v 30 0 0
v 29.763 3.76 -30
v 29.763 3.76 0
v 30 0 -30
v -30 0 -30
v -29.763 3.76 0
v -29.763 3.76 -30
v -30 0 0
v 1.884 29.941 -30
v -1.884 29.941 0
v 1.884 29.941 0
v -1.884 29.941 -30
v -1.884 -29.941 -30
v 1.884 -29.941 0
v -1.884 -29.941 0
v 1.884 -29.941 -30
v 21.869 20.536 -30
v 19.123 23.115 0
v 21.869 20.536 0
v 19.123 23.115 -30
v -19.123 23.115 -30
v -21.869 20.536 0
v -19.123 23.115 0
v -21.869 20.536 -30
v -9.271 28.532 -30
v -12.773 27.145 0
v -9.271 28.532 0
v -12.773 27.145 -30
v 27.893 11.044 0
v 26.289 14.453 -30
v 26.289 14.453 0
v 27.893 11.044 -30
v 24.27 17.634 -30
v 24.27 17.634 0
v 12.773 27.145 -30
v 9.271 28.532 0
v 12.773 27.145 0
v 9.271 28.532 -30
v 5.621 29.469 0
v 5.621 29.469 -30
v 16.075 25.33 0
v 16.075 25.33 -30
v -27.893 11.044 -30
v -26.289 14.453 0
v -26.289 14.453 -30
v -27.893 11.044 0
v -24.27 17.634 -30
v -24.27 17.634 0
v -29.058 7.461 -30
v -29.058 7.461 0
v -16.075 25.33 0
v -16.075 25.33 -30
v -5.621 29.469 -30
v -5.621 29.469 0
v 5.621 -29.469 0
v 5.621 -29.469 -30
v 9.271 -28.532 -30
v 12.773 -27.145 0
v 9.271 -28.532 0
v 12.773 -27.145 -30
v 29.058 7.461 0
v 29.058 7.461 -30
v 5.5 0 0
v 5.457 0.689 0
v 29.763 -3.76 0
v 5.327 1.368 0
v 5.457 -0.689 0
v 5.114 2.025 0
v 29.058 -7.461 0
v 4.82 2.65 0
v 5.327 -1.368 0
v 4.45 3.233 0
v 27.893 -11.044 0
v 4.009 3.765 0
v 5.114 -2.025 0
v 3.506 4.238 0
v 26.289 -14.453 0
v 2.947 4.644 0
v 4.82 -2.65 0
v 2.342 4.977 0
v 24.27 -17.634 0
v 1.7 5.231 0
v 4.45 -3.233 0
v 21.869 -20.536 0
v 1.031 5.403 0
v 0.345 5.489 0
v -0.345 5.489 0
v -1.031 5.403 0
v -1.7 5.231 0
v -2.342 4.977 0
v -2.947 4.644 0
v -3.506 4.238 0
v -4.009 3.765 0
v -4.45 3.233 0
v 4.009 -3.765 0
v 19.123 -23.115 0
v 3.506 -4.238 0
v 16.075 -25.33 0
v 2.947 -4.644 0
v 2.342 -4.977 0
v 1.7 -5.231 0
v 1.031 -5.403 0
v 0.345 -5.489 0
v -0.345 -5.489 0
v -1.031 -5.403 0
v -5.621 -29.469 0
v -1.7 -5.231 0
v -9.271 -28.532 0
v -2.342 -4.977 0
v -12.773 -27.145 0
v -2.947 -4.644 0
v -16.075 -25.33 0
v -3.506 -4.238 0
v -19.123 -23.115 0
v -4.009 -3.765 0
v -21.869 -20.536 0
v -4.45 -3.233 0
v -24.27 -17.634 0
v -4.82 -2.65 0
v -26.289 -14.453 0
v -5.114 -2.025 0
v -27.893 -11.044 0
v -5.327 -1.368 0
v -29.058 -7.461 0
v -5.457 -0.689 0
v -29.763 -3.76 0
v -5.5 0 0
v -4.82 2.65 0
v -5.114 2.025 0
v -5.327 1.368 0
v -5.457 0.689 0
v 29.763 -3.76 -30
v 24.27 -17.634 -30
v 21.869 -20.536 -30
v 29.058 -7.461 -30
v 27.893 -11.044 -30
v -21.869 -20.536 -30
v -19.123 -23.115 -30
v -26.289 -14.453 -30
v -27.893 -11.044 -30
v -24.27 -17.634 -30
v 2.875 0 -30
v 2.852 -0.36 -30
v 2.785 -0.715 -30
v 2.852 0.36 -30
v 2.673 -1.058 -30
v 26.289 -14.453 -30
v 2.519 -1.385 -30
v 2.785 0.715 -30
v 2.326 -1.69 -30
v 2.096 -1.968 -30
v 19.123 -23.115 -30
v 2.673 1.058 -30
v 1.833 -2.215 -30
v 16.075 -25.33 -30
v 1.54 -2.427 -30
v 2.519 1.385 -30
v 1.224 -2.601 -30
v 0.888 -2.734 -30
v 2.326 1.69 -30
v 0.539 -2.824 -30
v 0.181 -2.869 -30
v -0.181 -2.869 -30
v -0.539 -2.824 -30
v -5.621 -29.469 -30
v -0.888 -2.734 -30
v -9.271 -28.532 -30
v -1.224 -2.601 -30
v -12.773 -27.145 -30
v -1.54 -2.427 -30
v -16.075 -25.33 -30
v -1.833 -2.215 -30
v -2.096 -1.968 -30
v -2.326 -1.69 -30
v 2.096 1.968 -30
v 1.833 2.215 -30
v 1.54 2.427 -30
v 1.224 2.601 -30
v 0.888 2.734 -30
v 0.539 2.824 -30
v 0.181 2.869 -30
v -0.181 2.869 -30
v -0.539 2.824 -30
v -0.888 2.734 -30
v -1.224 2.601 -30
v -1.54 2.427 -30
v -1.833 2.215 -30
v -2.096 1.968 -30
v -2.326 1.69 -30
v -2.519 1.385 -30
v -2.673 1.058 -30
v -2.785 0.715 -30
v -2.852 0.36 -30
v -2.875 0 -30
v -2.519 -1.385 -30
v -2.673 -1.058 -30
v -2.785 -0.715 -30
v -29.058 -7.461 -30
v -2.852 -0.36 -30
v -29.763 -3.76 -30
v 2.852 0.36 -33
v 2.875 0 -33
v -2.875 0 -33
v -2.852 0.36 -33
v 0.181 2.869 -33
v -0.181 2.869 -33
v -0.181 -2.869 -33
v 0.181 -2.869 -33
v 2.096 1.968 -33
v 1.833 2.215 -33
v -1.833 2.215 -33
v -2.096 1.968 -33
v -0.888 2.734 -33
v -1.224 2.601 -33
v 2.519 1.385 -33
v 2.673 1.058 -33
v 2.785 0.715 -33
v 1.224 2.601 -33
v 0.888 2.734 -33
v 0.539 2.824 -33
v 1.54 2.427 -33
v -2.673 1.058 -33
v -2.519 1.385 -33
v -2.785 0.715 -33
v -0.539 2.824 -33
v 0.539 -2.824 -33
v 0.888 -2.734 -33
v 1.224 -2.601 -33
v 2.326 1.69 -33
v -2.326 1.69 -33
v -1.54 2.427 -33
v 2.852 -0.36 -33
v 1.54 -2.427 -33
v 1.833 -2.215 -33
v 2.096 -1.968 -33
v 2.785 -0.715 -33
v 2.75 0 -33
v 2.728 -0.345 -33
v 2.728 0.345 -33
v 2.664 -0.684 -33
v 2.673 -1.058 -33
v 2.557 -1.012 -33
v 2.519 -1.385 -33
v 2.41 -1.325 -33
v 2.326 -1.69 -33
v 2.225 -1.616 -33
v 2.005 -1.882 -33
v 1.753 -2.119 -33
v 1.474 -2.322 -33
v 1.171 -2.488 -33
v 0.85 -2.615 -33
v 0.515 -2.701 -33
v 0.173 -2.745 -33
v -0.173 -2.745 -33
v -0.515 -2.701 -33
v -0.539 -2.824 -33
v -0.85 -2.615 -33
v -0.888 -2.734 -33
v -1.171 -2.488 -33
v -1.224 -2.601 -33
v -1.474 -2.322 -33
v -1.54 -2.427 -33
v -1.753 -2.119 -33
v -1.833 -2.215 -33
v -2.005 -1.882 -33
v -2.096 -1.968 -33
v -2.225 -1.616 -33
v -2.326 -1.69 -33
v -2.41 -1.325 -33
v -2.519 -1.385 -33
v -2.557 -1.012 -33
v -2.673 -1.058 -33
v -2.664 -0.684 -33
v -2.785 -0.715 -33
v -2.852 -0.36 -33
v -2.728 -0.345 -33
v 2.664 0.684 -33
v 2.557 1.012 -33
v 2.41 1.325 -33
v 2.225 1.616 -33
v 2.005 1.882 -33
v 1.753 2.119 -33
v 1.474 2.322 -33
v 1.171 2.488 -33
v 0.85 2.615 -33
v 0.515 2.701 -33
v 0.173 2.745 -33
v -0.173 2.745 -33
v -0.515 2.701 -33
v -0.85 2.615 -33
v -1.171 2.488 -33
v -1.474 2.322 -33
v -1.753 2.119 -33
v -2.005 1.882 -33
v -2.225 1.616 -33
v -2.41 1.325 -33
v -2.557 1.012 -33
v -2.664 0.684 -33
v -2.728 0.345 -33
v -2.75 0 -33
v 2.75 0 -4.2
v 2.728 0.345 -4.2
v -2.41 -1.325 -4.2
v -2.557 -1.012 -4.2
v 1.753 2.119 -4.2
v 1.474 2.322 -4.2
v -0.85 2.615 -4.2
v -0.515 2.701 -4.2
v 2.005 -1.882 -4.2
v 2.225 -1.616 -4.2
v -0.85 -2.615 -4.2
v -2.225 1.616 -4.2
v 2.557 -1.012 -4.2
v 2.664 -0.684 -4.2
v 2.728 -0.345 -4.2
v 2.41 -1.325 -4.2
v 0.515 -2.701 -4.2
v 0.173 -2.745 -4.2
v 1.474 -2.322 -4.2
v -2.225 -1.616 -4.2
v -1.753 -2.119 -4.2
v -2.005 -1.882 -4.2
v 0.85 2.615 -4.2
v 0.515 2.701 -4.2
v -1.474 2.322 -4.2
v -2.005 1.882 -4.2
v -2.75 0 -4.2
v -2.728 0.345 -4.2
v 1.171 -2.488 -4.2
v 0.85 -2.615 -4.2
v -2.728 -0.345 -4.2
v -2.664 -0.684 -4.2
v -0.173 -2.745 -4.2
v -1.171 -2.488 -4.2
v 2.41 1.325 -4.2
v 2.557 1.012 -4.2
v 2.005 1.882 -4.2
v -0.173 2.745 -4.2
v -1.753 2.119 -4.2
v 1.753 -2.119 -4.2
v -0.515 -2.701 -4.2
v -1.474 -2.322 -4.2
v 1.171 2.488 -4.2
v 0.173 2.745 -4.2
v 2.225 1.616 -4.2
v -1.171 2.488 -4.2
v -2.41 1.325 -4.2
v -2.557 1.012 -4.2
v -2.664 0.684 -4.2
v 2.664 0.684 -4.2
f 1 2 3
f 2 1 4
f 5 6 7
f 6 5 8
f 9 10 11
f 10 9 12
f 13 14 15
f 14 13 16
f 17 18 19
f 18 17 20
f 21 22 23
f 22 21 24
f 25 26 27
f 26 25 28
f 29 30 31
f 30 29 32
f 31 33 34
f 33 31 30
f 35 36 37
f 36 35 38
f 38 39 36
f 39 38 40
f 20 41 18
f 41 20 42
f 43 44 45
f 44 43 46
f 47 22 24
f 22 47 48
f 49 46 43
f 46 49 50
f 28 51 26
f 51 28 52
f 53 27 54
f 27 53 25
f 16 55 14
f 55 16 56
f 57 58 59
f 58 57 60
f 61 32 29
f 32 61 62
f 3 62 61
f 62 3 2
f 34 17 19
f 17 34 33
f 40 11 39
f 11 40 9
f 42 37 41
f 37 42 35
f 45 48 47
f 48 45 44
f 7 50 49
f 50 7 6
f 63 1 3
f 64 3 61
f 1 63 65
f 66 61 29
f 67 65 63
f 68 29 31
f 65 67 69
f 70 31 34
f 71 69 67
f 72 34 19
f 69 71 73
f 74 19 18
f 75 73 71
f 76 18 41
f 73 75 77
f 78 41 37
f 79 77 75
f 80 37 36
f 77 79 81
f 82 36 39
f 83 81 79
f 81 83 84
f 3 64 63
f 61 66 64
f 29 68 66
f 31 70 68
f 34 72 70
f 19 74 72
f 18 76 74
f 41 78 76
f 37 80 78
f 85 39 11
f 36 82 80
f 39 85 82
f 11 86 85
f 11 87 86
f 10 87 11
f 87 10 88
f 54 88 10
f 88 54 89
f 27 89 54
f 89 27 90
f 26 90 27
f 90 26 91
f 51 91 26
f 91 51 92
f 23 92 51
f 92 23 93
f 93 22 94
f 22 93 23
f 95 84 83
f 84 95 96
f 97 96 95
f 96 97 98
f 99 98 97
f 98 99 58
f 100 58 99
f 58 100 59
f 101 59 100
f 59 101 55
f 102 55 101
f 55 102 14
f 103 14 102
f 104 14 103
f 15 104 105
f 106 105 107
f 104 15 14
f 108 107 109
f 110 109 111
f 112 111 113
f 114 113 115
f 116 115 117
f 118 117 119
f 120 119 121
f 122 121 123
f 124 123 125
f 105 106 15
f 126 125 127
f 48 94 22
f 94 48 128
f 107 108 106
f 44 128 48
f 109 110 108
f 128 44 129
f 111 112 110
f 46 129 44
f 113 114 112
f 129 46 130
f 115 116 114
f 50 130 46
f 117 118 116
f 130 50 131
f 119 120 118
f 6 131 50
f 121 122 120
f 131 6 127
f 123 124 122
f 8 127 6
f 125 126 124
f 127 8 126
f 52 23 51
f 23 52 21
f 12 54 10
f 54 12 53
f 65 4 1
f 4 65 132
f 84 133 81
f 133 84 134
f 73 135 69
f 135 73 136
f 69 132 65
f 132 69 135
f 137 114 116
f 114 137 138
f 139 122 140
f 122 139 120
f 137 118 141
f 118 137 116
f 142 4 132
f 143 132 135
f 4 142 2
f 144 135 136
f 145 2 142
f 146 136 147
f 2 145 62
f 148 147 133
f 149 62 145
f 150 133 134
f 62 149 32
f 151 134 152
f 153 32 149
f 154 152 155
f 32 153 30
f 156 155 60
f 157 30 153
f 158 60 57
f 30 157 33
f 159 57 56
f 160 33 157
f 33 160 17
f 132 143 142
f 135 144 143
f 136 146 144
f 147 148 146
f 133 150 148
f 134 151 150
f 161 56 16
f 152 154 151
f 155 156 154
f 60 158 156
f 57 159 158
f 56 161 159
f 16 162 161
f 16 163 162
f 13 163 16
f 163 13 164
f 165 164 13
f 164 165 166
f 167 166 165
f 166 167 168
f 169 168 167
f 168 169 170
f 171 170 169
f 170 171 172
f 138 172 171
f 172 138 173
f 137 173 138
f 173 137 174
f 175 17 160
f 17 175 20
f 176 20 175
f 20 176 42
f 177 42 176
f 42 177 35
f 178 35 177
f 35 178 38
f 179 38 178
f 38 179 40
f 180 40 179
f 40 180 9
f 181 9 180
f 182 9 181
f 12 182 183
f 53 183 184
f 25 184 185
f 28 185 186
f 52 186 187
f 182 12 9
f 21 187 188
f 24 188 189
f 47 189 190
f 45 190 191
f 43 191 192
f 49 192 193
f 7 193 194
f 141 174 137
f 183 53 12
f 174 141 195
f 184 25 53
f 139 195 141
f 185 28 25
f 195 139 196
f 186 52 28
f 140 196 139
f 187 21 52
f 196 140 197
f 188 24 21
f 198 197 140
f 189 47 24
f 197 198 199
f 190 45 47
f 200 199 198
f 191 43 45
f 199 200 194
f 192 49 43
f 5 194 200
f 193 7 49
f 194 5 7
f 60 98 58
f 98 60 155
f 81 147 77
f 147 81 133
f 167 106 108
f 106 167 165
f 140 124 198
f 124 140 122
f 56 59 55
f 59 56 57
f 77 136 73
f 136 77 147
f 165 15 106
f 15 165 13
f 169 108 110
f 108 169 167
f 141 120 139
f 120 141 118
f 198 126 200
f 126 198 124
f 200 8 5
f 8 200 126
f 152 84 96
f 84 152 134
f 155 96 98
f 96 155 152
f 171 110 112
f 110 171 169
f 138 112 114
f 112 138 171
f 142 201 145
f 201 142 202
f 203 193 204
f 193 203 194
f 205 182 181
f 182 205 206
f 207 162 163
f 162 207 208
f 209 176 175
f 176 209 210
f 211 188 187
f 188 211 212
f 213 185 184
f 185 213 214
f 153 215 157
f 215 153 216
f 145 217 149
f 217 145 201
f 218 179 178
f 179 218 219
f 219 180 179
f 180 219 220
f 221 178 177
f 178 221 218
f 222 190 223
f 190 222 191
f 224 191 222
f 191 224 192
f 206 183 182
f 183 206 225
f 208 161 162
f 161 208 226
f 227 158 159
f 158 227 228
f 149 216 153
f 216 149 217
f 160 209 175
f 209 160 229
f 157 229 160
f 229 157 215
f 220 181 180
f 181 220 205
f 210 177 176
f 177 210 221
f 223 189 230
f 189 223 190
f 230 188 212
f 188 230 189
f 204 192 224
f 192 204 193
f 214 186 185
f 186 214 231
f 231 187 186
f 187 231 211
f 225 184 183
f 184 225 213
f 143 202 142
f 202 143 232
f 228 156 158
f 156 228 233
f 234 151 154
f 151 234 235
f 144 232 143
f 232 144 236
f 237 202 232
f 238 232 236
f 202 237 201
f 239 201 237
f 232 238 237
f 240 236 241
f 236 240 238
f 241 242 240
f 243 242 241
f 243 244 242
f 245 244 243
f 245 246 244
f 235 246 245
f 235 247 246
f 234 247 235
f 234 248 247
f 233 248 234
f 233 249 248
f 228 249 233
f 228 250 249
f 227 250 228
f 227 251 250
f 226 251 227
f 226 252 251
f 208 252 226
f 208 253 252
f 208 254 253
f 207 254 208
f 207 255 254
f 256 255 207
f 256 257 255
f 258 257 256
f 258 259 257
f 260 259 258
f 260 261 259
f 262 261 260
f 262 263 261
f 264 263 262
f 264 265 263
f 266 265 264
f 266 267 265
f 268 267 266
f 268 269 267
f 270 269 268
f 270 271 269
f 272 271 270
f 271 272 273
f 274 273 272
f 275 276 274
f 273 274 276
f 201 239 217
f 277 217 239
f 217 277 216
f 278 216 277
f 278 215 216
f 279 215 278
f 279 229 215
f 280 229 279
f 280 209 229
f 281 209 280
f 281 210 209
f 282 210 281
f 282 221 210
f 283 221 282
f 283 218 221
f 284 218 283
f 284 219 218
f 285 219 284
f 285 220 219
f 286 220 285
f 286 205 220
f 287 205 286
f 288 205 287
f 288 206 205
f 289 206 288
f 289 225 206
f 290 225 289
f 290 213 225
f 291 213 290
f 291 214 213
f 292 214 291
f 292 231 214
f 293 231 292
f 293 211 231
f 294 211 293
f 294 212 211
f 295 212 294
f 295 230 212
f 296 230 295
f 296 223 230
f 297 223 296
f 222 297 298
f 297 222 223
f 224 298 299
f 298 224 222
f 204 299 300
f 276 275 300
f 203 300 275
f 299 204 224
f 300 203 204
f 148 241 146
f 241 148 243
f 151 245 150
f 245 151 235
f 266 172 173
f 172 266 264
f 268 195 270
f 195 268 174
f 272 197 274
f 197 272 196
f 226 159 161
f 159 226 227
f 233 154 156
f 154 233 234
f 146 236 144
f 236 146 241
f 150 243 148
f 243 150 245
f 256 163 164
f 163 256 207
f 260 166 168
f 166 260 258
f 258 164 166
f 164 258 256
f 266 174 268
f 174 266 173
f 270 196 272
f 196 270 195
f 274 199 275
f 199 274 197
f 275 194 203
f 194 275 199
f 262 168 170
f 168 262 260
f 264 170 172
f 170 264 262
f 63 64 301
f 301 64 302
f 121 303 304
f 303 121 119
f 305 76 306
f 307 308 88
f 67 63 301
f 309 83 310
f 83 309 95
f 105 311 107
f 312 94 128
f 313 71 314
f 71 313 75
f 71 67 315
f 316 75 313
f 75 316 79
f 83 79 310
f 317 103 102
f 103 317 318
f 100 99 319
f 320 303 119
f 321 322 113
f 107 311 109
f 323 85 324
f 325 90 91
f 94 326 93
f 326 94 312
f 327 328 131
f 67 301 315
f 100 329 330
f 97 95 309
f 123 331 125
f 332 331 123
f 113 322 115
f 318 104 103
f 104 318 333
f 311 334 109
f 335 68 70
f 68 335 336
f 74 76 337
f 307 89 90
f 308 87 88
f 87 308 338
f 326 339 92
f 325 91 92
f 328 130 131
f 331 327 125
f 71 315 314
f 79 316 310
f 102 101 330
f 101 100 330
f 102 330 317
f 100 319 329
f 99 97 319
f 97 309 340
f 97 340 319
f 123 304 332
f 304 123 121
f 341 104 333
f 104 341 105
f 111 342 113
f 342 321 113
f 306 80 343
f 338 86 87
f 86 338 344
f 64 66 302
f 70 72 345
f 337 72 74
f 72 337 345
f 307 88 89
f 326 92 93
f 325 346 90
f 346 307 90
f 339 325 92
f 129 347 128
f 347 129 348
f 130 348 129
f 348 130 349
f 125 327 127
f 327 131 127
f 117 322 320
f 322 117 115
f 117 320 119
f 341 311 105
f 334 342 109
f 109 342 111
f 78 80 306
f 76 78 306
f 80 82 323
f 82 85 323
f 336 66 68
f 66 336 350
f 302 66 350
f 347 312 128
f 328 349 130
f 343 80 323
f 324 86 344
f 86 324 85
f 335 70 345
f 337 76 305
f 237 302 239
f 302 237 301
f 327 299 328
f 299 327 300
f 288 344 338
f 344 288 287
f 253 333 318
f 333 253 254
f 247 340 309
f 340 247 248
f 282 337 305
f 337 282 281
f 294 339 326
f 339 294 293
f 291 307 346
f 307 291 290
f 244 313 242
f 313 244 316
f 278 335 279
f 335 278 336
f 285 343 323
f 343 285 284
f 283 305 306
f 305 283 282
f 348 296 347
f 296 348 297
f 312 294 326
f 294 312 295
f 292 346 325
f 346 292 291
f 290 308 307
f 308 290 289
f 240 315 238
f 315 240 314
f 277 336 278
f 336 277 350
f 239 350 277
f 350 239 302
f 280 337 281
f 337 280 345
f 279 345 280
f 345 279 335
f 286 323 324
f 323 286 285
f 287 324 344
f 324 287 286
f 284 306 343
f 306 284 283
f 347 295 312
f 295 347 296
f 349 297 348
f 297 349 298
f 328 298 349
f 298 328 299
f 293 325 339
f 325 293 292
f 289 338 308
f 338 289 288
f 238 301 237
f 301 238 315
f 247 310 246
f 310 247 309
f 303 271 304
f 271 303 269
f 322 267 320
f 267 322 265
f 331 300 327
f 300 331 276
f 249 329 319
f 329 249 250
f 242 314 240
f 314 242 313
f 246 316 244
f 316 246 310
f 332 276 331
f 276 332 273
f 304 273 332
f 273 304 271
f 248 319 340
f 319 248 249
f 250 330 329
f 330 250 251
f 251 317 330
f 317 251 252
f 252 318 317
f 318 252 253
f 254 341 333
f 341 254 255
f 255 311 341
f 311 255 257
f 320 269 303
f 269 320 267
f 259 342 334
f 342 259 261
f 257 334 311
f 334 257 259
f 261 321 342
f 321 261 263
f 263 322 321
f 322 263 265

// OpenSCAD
$fn = 50;

difference() {
	union() {
		translate(v = [0, 0, -30.0]) {
			cylinder(h = 30, r = 30.0);
		}
		#translate(v = [0, 0, -33.0]) {
			cylinder(h = 33, r = 2.875);
		}
	}
	union() {
		translate(v = [0, 0, 0]) {
			rotate(a = [0, 0, 0]) {
				difference() {
					union() {
						translate(v = [0, 0, -33.0]) {
							cylinder(h = 33, r = 2.25);
						}
						translate(v = [0, 0, -4.2]) {
							cylinder(h = 4.2, r1 = 2.75, r2 = 5.5);
						}
						translate(v = [0, 0, -33.0]) {
							cylinder(h = 33, r = 2.75);
						}
						translate(v = [0, 0, -33.0]) {
							cylinder(h = 33, r = 2.25);
						}
					}
					union();
				}
			}
		}
	}
}
